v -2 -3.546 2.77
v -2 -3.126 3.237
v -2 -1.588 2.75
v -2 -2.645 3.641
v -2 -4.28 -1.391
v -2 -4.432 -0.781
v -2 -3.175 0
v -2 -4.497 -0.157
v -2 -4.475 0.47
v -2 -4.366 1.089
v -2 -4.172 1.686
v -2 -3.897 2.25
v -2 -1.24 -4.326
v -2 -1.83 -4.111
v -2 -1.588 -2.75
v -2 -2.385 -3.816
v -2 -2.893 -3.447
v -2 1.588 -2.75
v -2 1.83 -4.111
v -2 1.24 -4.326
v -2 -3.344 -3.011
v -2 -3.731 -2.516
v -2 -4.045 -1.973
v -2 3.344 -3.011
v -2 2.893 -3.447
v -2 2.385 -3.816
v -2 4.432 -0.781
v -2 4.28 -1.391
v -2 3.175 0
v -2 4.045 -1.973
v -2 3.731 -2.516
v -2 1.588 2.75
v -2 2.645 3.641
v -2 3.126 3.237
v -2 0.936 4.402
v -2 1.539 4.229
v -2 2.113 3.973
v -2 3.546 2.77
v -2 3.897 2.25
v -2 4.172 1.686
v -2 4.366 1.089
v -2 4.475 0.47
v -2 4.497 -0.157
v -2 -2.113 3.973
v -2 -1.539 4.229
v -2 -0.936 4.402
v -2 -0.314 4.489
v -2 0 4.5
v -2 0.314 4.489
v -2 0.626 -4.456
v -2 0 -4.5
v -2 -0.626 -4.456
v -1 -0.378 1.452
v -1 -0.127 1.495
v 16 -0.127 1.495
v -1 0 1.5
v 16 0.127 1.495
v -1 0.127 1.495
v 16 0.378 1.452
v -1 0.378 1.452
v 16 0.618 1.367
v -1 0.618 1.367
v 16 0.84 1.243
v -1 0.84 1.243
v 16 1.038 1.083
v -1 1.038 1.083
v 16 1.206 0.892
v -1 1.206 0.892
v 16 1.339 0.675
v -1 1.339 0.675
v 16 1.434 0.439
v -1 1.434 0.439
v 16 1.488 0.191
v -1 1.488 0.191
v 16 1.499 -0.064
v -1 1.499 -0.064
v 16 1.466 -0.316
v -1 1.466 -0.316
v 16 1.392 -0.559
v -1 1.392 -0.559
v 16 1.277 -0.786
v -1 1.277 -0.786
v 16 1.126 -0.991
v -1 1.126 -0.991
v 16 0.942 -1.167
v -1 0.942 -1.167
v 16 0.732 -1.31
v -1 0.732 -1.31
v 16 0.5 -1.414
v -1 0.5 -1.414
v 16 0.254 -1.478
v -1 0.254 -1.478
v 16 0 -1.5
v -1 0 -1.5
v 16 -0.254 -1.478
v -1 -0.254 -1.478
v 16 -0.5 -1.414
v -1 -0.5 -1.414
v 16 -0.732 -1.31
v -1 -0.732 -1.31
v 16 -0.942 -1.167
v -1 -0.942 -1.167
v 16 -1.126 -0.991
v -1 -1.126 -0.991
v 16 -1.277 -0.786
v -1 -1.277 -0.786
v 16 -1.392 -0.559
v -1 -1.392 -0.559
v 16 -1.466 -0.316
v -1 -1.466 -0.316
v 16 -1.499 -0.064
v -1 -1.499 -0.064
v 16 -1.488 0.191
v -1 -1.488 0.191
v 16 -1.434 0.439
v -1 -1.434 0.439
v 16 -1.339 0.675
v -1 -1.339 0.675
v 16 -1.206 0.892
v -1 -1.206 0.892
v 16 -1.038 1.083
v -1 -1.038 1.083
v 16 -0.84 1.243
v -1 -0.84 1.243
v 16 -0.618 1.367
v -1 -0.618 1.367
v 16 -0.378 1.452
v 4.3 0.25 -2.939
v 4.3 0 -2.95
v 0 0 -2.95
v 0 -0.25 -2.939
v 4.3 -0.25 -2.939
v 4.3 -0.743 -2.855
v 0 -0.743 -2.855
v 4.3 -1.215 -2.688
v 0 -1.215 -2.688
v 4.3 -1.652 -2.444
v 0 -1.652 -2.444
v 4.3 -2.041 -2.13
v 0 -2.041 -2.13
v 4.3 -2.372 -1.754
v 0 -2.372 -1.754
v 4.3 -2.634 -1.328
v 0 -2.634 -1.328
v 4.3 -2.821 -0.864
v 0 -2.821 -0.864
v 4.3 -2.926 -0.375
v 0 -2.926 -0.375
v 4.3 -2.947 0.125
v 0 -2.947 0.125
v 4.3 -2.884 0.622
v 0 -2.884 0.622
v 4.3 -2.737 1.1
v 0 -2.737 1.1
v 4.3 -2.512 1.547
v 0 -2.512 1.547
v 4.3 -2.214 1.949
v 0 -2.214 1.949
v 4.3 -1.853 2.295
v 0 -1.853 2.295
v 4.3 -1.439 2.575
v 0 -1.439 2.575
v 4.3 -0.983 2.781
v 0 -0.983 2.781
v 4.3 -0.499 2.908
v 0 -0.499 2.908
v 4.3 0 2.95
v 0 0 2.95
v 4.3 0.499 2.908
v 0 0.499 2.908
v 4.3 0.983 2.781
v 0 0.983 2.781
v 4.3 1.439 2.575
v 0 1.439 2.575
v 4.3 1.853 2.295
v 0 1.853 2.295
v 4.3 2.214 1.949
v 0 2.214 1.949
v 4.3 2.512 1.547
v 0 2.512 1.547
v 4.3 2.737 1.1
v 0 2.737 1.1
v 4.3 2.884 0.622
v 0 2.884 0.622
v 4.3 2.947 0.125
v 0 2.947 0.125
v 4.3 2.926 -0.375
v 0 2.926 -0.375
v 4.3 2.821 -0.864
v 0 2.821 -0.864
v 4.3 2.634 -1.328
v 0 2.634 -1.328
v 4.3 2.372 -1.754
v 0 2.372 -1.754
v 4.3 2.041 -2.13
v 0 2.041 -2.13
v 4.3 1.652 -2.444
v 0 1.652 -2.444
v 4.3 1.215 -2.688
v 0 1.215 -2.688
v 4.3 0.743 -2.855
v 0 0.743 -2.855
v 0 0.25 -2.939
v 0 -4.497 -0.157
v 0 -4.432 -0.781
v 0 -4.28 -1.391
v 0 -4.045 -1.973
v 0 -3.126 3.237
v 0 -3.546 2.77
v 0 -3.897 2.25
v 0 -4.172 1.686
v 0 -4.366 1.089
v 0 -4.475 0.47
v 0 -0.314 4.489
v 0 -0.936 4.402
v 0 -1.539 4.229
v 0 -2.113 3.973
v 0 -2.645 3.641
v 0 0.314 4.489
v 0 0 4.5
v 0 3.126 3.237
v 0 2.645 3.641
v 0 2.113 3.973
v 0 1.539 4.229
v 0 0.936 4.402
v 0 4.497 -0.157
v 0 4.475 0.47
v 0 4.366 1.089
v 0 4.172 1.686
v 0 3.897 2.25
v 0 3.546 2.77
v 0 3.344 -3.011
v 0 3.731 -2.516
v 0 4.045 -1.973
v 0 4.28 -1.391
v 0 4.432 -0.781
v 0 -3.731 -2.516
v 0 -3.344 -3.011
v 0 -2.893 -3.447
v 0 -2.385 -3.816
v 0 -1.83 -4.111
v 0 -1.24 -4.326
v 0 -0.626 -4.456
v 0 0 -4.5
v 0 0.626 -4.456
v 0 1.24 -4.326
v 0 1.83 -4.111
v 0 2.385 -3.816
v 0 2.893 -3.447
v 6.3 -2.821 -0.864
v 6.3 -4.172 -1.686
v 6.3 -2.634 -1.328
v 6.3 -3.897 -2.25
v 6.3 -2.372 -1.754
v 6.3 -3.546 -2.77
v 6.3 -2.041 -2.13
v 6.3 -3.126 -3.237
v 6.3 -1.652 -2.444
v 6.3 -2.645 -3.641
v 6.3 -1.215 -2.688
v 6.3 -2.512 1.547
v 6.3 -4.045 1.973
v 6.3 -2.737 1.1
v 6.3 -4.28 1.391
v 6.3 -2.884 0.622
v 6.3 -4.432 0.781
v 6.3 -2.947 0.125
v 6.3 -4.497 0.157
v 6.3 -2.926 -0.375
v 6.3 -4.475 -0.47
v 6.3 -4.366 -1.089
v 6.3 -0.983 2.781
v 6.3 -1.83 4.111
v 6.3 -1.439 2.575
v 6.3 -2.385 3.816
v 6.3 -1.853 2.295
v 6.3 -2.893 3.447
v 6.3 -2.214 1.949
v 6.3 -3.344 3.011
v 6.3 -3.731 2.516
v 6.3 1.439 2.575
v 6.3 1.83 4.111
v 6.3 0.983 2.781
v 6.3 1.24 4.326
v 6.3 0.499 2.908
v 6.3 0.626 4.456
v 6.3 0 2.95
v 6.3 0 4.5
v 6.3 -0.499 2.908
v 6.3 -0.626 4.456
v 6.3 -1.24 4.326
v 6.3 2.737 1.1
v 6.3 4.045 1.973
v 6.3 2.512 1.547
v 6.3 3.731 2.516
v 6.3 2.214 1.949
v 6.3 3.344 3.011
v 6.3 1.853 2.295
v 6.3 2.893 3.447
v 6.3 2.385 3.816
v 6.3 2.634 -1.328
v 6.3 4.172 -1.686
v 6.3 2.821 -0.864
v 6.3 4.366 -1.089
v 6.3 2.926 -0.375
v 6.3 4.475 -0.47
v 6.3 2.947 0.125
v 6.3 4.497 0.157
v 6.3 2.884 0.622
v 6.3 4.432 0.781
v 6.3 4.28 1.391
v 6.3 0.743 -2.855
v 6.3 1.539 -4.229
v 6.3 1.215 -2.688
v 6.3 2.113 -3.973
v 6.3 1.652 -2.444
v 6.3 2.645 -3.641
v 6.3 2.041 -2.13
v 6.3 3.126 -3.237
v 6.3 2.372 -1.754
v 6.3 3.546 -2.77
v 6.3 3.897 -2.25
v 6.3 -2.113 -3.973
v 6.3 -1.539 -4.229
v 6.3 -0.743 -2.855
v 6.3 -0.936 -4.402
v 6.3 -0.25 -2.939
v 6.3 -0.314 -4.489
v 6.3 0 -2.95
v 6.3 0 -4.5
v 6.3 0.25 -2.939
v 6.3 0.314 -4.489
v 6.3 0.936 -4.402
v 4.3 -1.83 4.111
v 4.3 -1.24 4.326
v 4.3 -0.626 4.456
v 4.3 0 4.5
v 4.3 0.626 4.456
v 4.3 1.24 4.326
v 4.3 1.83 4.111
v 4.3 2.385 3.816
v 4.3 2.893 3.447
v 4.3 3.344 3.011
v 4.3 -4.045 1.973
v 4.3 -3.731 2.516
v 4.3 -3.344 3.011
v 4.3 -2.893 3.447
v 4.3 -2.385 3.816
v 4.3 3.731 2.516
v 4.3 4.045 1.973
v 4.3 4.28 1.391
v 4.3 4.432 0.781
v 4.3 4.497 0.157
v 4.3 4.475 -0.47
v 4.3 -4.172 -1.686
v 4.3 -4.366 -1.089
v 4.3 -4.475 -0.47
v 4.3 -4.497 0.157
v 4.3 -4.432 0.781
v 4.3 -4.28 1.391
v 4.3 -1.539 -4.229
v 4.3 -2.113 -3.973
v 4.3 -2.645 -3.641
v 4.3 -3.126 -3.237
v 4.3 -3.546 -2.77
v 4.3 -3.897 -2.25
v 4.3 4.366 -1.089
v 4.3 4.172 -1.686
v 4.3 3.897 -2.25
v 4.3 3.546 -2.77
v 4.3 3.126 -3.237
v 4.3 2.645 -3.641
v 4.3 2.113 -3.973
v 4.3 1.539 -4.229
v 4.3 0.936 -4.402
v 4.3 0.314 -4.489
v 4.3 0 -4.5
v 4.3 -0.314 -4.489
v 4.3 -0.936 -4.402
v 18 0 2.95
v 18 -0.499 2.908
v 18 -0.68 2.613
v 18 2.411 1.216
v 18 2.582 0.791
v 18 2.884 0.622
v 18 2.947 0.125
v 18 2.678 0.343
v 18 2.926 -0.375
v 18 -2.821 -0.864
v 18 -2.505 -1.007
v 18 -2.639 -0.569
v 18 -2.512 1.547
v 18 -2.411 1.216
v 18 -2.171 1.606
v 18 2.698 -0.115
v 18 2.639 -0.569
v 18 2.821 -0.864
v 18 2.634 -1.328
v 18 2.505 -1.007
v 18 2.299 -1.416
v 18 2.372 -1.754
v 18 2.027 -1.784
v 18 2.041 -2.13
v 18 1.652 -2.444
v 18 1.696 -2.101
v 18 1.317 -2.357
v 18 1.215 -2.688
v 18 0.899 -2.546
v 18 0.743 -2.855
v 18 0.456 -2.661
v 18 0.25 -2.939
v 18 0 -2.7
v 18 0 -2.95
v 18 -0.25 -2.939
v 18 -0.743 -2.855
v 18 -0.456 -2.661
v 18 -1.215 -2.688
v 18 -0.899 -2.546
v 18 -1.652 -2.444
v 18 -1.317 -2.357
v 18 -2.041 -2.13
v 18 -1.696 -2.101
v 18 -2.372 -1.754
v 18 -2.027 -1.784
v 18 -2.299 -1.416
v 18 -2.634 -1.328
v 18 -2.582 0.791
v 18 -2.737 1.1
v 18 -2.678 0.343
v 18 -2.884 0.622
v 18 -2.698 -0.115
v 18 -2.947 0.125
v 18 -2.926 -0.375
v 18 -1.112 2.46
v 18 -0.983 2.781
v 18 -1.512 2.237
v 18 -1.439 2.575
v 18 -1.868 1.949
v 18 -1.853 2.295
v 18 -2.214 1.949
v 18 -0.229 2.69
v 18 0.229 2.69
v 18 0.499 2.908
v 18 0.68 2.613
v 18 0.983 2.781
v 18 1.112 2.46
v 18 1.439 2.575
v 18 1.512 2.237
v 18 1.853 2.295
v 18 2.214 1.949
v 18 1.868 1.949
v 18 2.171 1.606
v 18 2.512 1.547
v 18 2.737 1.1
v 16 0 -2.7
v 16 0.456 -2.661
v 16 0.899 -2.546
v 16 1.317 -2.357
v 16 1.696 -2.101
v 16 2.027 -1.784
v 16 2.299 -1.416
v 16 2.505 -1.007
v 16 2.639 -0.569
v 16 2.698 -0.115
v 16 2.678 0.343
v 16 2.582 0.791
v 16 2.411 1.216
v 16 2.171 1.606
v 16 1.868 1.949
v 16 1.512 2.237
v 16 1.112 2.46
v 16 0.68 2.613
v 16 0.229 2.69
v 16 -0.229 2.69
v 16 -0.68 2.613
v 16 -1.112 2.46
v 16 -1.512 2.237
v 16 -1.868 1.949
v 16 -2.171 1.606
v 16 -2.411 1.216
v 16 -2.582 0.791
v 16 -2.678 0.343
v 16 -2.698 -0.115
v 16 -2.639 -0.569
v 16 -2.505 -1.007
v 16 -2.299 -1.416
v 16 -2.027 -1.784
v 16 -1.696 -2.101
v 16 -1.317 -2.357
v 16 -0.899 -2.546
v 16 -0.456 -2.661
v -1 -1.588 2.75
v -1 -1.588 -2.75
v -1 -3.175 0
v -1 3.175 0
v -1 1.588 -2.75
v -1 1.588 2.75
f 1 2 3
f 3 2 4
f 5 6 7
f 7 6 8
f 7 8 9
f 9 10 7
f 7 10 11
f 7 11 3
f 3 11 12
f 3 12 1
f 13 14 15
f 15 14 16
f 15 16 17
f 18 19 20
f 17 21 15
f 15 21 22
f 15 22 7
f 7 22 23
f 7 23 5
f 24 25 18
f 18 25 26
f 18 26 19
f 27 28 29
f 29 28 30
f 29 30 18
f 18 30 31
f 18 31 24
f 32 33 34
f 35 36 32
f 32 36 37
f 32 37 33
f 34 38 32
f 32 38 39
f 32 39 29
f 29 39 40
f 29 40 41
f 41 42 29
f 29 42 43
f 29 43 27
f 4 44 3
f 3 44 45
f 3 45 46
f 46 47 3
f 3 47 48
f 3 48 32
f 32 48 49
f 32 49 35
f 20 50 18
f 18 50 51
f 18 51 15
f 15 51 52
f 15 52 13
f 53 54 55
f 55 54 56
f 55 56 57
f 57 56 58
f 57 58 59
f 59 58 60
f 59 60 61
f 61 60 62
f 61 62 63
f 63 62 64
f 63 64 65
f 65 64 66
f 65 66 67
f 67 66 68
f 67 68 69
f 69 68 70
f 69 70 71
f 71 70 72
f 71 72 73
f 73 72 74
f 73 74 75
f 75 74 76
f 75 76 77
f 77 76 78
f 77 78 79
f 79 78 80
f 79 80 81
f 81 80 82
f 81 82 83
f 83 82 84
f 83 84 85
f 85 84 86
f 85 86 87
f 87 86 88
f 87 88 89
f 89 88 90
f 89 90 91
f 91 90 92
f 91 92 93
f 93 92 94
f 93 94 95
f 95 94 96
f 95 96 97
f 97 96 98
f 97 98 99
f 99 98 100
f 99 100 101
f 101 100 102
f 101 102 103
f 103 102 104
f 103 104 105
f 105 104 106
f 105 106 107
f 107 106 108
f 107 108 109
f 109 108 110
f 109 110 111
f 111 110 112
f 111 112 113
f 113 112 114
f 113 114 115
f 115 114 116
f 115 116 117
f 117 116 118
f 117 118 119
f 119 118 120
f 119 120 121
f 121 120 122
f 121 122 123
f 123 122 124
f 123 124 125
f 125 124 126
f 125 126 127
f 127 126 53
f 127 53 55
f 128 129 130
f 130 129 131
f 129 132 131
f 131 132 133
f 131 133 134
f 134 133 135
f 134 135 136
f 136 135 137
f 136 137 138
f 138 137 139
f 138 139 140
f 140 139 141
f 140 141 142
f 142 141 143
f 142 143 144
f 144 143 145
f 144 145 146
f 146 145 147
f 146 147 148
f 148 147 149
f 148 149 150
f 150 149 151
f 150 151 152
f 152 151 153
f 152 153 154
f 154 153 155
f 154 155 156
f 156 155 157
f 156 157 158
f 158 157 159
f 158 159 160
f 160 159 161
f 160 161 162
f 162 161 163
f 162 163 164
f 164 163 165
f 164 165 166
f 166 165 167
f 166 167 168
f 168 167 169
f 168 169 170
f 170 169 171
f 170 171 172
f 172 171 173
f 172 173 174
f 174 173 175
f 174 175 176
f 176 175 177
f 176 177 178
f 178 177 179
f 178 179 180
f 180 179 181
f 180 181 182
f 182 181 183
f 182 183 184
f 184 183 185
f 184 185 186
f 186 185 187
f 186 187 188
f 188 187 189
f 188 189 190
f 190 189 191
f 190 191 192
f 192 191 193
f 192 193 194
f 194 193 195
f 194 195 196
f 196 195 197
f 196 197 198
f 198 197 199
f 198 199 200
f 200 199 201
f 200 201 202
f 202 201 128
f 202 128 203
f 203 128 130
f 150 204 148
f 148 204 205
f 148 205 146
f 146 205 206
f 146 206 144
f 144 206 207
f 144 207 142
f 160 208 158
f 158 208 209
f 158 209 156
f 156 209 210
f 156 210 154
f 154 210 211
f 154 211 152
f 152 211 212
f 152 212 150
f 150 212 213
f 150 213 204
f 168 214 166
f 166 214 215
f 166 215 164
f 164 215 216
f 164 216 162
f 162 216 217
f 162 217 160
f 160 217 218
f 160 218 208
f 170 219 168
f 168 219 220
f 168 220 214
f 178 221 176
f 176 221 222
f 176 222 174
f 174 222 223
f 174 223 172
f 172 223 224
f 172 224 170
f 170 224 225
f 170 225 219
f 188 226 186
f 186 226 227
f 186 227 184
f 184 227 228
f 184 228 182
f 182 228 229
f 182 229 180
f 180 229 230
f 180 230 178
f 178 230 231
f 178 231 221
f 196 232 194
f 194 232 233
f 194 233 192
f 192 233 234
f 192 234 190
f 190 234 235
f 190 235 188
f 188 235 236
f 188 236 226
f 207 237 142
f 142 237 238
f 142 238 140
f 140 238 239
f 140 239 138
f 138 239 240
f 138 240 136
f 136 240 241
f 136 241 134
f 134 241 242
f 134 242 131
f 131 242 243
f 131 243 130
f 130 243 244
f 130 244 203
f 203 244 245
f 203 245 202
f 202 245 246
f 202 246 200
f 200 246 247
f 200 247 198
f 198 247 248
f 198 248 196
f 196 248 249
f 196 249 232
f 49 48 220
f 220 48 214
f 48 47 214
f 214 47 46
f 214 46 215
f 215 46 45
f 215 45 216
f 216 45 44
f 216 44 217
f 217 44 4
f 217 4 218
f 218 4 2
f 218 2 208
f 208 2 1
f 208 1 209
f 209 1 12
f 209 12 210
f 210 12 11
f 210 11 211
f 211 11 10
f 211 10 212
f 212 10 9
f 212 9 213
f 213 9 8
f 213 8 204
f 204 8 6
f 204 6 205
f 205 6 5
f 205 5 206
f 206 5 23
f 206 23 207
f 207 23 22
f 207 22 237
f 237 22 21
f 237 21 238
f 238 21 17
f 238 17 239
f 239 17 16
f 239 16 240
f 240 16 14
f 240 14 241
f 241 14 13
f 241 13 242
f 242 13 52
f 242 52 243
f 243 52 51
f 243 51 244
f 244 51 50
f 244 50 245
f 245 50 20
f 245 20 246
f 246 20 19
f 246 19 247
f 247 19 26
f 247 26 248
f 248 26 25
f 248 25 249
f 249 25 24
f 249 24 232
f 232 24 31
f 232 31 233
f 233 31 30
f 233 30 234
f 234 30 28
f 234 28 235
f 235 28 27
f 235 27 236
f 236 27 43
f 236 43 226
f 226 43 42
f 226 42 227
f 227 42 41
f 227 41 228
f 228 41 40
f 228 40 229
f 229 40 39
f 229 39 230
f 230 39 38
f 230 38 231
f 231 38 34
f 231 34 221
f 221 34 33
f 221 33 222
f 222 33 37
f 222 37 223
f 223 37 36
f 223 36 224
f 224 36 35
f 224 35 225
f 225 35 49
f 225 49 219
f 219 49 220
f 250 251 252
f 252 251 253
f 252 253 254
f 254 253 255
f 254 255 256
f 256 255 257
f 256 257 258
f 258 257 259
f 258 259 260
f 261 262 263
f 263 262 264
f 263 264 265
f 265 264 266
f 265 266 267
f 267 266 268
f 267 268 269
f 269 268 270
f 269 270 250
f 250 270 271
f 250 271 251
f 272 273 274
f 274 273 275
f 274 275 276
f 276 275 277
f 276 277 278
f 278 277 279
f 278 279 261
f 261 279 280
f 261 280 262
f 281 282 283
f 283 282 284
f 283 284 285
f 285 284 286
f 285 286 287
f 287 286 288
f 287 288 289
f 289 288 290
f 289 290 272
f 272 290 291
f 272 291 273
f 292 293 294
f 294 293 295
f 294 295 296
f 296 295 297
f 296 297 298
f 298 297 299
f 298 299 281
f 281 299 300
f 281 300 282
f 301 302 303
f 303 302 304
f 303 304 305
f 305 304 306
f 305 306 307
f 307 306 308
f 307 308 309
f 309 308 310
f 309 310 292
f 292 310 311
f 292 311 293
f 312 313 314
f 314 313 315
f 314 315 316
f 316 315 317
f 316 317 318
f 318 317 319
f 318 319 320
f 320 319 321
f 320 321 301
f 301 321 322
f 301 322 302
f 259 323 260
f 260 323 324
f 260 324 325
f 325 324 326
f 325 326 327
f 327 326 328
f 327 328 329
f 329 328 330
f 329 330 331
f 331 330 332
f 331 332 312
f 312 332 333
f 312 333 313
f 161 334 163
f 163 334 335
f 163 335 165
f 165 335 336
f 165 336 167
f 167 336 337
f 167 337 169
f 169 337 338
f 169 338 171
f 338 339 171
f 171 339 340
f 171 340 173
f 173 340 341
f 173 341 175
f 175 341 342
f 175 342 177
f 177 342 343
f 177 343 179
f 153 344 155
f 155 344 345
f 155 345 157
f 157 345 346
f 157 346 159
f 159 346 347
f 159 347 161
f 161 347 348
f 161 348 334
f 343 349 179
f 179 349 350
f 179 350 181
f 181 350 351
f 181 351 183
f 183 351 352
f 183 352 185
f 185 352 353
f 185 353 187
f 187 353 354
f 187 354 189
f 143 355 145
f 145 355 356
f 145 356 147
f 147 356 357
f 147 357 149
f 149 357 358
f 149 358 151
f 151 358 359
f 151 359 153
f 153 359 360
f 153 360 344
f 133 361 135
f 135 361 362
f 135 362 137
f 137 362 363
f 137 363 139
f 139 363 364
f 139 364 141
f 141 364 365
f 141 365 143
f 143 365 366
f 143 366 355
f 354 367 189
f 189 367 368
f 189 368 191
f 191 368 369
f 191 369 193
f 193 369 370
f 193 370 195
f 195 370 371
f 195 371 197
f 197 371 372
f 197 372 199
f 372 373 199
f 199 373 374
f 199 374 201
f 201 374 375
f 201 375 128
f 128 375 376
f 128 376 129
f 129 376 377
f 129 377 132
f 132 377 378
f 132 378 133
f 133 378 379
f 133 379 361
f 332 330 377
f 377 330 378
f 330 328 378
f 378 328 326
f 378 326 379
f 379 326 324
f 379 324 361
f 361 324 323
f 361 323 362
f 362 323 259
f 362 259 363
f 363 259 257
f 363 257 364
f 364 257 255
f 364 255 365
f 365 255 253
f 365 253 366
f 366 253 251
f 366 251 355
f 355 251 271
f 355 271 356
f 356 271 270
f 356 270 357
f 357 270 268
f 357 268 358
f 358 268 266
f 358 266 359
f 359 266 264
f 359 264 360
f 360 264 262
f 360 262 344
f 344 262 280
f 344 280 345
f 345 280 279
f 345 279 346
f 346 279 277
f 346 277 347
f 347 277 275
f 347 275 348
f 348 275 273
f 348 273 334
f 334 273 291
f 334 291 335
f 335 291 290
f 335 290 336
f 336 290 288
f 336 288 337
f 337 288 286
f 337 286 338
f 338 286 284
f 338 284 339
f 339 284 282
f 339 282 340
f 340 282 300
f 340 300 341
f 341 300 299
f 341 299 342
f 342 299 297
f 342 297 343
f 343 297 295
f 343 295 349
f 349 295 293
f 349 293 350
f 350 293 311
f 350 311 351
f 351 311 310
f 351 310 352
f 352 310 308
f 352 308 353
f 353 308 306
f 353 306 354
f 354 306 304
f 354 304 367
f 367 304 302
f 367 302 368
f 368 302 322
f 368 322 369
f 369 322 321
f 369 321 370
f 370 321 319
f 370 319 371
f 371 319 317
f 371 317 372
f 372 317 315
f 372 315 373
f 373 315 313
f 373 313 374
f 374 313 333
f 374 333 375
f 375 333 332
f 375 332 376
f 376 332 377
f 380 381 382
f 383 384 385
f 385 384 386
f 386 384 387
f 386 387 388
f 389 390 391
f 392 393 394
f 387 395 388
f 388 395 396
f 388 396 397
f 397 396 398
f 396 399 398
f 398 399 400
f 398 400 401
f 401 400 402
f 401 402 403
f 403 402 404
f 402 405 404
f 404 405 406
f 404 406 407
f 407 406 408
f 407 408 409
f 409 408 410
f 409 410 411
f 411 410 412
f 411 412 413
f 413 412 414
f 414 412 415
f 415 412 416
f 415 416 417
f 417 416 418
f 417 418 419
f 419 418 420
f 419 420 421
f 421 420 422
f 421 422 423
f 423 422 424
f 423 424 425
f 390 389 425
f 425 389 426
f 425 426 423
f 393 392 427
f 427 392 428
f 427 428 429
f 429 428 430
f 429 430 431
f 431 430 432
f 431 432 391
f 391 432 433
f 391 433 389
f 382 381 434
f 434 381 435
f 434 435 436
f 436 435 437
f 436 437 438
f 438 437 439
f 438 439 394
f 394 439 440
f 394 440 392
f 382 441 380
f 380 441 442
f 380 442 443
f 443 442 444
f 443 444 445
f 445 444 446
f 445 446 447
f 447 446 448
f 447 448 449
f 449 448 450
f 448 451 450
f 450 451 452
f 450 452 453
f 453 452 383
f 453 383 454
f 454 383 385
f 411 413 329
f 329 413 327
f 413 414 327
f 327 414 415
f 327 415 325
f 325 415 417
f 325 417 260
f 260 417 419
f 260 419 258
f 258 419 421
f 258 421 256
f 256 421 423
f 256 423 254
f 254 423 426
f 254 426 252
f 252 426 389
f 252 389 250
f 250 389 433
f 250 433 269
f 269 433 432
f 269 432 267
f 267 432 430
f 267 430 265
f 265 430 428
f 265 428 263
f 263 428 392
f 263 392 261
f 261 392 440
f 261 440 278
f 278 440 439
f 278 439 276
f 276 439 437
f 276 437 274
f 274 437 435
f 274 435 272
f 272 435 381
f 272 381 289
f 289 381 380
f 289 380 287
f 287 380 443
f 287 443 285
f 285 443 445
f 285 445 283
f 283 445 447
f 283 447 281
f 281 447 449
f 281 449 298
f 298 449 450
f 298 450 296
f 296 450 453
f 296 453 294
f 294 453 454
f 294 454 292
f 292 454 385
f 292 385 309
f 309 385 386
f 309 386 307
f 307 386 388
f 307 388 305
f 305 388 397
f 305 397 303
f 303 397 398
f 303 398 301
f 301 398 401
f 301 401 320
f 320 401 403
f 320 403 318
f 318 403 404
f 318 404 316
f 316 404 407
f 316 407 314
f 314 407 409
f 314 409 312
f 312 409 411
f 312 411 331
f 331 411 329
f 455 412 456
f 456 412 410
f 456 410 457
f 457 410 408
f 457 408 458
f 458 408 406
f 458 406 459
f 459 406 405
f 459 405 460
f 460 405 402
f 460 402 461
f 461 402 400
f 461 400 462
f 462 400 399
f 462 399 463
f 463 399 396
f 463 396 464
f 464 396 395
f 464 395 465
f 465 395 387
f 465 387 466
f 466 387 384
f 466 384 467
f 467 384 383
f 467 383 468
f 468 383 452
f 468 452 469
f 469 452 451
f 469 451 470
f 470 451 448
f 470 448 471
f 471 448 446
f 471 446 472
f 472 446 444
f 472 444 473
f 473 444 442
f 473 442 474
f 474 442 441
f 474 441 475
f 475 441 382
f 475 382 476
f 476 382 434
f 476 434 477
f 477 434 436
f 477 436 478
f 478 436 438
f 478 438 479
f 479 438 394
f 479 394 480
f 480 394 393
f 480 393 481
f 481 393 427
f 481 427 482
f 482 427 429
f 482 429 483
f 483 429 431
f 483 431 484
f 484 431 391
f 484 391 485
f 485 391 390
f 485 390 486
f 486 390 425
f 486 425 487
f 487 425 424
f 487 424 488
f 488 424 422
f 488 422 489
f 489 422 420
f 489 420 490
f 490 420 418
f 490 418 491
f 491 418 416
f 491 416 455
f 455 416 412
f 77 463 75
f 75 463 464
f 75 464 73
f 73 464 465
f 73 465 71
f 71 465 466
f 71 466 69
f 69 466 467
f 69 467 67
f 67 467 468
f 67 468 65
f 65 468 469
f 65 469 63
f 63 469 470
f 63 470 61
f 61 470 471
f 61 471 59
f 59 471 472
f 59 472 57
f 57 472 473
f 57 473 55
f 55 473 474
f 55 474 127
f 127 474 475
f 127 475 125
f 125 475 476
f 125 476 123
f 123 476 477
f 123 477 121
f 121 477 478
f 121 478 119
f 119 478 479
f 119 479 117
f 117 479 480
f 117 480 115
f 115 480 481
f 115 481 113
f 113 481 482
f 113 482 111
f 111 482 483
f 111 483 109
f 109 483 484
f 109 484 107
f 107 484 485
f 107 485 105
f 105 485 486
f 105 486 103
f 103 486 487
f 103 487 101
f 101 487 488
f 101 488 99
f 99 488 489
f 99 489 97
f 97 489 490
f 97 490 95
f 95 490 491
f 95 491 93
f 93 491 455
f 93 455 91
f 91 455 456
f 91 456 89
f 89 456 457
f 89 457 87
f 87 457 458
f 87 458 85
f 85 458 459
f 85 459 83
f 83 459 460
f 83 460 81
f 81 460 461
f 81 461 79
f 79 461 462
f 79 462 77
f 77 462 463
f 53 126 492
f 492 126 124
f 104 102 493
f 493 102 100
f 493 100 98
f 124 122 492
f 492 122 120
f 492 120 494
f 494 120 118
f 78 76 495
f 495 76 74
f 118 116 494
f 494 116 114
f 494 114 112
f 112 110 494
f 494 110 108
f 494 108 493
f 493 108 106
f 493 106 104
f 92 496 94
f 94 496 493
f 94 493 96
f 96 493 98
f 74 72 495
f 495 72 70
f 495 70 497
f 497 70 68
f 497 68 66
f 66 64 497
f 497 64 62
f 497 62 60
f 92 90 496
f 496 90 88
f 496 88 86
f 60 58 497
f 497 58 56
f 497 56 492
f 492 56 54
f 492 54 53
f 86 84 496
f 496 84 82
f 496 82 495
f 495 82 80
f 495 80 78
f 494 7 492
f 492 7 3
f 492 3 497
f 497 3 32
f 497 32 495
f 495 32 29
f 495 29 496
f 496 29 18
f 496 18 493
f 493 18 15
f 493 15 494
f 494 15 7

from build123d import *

# Parameters (mm, degrees)
SKETCH1_R               = 2.95
BOSS_EXTRUDE1_DEPTH     = 18
SKETCH2_R               = 2.7
CUT_EXTRUDE1_DEPTH      = 2
CUT_EXTRUDE2_DEPTH      = 17.534962957
CUT_EXTRUDE2_DEPTH_BACK = 17.534962957
SKETCH3_R               = 1.5
SKETCH4_R               = 4.5
BOSS_EXTRUDE2_DEPTH     = 2
BOSS_EXTRUDE3_START     = -6.3
SKETCH4_3_R             = 4.5
BOSS_EXTRUDE3_DEPTH     = 2
CUT_EXTRUDE3_DEPTH      = 21.988091862
CUT_EXTRUDE3_DEPTH_BACK = 21.988091862
SKETCH5_R               = 1.5
CUT_EXTRUDE4_DEPTH      = 21.988091862
CUT_EXTRUDE4_DEPTH_BACK = 1


with BuildPart() as part:
    # Sketch1 → Boss-Extrude1 (new body)
    with BuildSketch(Plane(origin=(0, 0, 0), x_dir=(0, 0, -1), z_dir=(1, 0, 0))):
        Circle(SKETCH1_R)
    extrude(amount=BOSS_EXTRUDE1_DEPTH)

    # Sketch2 → Cut-Extrude1 (cut)
    with BuildSketch(Plane(origin=(18, 0, 0), x_dir=(0, 0, -1), z_dir=(1, 0, 0))):
        Circle(SKETCH2_R)
    extrude(amount=-CUT_EXTRUDE1_DEPTH, mode=Mode.SUBTRACT)

    # Sketch3 → Cut-Extrude2 (cut, two sides: drawn at the far end of the back side and taken through both)
    with BuildSketch(Plane(origin=(16, 0, 0), x_dir=(0, 0, -1), z_dir=(1, 0, 0)).offset(-CUT_EXTRUDE2_DEPTH_BACK)):
        Circle(SKETCH3_R)
    extrude(amount=CUT_EXTRUDE2_DEPTH + CUT_EXTRUDE2_DEPTH_BACK, mode=Mode.SUBTRACT)

    # Sketch4 → Boss-Extrude2 (add)
    with BuildSketch(Plane.ZY):
        Circle(SKETCH4_R)
    extrude(amount=BOSS_EXTRUDE2_DEPTH)

    # Sketch4<3> → Boss-Extrude3 (add)
    with BuildSketch(Plane.ZY.offset(BOSS_EXTRUDE3_START)):
        Circle(SKETCH4_3_R)
    extrude(amount=BOSS_EXTRUDE3_DEPTH)

    # Sketch5 → Cut-Extrude3 (cut, two sides: drawn at the far end of the back side and taken through both)
    with BuildSketch(Plane.ZY.offset(2).offset(-CUT_EXTRUDE3_DEPTH_BACK)):
        with Locations(Location((0, 0, 0), (0, 0, 180))):
            Circle(SKETCH5_R)
    extrude(amount=CUT_EXTRUDE3_DEPTH + CUT_EXTRUDE3_DEPTH_BACK, mode=Mode.SUBTRACT)

    # Sketch6 → Cut-Extrude4 (cut, two sides: drawn at the far end of the back side and taken through both)
    with BuildSketch(Plane.ZY.offset(2).offset(-CUT_EXTRUDE4_DEPTH_BACK)):
        Polygon((2.75, -1.58771324), (2.75, 1.58771324), (0, 3.175426481), (-2.75, 1.58771324), (-2.75, -1.58771324), (0, -3.175426481), align=None)
    extrude(amount=CUT_EXTRUDE4_DEPTH + CUT_EXTRUDE4_DEPTH_BACK, mode=Mode.SUBTRACT)


solid = part.part
